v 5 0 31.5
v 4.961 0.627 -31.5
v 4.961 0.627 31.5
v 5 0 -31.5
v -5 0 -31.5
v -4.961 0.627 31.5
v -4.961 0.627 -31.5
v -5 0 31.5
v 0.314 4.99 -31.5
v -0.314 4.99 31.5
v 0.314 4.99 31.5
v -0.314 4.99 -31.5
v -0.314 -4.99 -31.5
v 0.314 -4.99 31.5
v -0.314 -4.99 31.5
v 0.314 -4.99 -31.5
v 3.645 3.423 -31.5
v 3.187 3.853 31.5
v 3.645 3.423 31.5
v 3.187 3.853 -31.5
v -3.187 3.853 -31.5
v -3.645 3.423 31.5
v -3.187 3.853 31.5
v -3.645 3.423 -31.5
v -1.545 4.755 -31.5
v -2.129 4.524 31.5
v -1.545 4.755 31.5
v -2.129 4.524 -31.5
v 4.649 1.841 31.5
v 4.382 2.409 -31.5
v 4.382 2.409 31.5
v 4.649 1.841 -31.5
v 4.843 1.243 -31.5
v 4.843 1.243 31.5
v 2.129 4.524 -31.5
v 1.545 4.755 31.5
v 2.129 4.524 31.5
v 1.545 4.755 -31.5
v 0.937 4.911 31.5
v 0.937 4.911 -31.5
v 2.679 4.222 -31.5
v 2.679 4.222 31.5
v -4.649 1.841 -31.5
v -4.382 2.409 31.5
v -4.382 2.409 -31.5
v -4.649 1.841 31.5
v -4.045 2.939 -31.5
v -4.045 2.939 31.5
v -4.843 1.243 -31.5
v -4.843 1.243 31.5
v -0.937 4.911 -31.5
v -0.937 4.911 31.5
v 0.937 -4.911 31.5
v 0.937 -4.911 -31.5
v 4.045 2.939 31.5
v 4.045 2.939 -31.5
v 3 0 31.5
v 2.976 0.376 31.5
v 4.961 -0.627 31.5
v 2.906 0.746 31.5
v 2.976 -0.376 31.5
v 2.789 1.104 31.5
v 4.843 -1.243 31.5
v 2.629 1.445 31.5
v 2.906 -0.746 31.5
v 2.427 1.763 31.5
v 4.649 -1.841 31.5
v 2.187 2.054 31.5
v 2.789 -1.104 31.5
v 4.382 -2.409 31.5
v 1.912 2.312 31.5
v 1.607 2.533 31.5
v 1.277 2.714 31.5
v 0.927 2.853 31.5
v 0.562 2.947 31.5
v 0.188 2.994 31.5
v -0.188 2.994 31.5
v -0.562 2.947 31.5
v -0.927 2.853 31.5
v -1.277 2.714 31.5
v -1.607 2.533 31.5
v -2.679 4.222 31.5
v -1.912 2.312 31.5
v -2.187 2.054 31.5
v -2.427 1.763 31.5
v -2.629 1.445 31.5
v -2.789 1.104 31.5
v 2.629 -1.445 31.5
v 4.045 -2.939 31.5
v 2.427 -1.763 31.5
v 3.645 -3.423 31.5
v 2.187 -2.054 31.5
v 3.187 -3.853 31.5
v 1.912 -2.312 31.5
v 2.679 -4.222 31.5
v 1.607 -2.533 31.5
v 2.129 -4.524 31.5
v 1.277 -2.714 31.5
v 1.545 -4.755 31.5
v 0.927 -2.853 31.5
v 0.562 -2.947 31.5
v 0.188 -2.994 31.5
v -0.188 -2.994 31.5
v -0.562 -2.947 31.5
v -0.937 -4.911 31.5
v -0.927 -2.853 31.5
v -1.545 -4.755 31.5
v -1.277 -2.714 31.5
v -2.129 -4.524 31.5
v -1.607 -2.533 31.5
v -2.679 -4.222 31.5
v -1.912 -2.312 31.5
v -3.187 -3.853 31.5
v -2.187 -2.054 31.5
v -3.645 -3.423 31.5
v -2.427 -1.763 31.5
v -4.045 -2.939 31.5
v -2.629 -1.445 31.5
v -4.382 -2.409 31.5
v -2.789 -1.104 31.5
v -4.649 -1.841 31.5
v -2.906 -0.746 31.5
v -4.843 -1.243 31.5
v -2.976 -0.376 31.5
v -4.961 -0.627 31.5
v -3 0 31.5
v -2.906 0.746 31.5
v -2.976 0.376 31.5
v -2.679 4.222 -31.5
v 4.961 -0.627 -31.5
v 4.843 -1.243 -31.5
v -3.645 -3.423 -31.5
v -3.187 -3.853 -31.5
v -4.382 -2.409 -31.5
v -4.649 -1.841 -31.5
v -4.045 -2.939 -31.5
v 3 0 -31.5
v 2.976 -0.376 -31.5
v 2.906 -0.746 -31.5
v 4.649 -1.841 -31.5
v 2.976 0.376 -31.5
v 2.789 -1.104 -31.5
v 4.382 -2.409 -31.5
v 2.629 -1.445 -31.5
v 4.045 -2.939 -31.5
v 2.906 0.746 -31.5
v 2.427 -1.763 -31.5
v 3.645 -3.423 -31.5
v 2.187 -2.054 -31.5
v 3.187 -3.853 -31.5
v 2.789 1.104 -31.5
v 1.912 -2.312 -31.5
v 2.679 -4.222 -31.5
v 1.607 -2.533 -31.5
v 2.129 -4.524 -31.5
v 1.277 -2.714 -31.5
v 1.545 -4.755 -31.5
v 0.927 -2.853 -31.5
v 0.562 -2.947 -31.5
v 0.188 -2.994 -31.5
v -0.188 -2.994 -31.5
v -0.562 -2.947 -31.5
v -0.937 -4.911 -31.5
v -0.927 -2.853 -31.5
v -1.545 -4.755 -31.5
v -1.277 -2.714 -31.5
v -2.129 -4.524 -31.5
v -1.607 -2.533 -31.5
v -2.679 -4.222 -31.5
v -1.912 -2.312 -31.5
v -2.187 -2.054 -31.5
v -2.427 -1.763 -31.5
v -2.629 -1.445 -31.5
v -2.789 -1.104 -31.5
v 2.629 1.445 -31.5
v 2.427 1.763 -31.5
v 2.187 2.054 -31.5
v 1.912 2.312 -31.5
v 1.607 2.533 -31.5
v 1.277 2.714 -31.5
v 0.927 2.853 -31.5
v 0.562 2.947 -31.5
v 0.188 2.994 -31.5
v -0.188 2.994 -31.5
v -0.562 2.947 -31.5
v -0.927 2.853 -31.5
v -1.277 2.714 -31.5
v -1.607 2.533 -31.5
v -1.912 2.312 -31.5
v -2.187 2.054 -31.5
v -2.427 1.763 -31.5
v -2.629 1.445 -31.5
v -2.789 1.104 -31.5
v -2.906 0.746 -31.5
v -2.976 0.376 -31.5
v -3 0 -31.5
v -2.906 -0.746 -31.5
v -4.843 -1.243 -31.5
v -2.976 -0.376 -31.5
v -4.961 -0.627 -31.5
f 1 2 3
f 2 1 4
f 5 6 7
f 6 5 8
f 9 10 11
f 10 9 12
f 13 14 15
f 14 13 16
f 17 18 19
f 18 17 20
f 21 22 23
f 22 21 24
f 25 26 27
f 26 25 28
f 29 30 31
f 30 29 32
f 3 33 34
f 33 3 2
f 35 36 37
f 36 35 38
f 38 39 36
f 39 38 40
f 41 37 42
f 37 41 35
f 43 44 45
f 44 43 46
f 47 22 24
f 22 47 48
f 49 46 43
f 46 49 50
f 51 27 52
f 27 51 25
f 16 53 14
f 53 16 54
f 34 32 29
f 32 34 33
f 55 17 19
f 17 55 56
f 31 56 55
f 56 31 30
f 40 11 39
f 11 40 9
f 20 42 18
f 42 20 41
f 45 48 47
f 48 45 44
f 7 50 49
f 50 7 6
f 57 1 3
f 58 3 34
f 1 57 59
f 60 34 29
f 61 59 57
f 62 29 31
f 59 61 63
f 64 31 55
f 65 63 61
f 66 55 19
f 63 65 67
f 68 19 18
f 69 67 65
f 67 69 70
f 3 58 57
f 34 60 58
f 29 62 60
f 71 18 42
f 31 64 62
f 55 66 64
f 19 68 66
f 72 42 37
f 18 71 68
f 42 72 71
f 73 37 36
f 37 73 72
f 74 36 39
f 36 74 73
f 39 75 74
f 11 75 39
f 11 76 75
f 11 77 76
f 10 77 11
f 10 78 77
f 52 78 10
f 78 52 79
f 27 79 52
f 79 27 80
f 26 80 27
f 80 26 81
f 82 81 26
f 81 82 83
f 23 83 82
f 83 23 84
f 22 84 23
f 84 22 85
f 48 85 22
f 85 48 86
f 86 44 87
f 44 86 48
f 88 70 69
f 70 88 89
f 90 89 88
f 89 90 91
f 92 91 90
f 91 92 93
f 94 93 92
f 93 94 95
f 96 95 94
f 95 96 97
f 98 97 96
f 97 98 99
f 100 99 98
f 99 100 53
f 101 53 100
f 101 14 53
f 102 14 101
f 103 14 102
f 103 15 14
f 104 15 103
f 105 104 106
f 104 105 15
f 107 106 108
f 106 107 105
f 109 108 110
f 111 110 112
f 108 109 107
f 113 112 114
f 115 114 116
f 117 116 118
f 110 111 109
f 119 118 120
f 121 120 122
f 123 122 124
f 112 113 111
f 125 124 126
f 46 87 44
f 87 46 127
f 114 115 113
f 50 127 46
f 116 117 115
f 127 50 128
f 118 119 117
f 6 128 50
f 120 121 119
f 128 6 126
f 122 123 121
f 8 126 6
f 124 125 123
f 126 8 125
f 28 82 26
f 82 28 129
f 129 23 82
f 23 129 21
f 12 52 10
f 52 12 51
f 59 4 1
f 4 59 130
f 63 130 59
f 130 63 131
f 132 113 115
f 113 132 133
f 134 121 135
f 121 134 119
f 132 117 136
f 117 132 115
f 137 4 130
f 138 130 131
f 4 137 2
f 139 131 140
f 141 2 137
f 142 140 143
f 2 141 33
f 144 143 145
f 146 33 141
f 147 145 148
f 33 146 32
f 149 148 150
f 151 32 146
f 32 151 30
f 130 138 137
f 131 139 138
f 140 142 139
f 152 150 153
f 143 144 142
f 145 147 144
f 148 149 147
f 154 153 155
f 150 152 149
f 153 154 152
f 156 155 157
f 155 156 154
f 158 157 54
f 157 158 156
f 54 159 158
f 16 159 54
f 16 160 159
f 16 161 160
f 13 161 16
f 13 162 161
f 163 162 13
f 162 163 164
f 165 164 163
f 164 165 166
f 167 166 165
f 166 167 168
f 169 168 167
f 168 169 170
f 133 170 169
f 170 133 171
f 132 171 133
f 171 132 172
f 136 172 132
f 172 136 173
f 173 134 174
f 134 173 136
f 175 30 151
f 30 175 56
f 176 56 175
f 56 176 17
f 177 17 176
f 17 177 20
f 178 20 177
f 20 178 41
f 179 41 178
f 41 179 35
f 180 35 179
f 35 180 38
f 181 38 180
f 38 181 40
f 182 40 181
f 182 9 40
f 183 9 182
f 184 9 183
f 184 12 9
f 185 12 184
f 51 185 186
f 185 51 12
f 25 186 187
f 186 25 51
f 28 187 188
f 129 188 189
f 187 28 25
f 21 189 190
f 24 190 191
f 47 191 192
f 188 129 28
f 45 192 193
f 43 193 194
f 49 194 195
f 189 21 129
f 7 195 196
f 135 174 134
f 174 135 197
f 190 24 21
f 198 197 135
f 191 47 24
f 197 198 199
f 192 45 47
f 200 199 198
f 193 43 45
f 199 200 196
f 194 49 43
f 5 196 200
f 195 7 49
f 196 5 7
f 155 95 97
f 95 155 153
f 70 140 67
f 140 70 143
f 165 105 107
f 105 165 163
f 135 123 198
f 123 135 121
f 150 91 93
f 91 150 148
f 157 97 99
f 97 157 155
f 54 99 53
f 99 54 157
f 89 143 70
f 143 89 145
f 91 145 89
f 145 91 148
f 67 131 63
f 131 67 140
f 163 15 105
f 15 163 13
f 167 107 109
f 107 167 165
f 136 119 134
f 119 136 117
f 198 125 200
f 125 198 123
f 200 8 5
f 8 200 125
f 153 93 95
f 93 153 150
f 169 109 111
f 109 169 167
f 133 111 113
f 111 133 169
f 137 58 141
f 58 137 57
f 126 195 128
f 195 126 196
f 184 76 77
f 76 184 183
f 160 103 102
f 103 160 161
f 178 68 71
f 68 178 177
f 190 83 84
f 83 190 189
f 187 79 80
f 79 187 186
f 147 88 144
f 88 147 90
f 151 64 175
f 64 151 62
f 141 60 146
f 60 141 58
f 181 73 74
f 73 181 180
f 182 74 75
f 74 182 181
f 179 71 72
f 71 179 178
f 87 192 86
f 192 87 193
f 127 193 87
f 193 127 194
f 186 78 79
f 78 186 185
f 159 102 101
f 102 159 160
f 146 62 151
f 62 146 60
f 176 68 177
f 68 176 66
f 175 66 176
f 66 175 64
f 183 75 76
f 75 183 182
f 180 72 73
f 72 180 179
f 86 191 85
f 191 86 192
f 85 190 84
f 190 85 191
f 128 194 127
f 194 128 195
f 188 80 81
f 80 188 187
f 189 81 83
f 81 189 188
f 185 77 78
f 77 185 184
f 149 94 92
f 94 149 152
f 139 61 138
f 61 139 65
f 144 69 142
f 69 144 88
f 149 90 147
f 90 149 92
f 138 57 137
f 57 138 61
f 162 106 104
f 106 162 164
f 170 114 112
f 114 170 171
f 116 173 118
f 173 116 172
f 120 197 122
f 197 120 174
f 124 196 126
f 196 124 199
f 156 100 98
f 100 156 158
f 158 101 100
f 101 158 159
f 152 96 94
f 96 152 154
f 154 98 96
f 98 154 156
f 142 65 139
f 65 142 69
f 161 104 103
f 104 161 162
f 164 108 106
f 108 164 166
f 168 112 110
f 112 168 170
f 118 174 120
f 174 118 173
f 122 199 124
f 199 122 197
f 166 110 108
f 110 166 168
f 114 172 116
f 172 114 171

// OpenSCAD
$fn = 50;


difference() {
	union() {
		translate(v = [0, 0, -31.5000000000]) {
			cylinder(h = 63, r = 5.0000000000);
		}
	}
	union() {
		translate(v = [0, 0, -100.0000000000]) {
			cylinder(h = 200, r = 3);
		}
	}
}
